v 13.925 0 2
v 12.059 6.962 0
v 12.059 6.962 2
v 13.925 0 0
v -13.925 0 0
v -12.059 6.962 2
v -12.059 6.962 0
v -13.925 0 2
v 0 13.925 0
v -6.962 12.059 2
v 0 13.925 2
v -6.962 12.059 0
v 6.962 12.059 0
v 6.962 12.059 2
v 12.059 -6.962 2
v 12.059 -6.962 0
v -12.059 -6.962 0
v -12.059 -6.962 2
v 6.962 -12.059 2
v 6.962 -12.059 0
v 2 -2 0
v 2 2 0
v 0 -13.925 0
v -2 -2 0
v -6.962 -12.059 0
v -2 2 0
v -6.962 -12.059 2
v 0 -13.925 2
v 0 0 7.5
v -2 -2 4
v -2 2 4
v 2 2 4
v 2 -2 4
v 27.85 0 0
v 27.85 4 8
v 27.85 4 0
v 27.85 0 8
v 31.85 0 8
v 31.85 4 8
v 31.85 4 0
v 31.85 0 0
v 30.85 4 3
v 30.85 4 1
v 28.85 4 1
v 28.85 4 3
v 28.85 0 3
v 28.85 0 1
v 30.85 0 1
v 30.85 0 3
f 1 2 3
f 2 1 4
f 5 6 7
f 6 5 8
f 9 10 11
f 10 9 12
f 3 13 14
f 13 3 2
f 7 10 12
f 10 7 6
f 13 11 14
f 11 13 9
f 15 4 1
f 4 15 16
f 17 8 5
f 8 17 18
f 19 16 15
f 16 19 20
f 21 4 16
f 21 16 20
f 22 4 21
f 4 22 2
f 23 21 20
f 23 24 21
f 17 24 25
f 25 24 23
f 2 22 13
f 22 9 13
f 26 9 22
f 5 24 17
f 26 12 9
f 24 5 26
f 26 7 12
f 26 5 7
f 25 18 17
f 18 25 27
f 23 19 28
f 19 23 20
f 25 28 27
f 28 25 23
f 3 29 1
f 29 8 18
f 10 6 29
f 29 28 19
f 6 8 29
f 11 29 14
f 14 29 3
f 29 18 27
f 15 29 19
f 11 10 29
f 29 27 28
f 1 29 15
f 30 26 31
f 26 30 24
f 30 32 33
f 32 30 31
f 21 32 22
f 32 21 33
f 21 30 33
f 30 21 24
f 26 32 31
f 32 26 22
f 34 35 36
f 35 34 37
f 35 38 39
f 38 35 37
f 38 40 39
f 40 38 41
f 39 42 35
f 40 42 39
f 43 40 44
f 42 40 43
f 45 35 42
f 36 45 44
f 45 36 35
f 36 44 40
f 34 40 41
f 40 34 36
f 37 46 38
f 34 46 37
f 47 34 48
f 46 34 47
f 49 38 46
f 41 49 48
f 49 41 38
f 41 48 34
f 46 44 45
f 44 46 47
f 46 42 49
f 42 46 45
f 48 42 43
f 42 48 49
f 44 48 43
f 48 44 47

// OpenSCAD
$fn=12;

button_size = 27.85;
button_base_height = 2;
button_height = 7.5 - button_base_height;

module button(size, bh = 2, h = 6)
{
    cylinder(h=bh, r1=size/2.0, r2=size/2.0, center=false);
    translate([0, 0, 2])
        cylinder(h, r1=size/2.0, r2=0, center=false);
}

module handle(size, center=true) {
    difference() {
        cube([4, 4, 8], center);
        translate([center ? 0 : 1, 0, center ? -2 : 1])
        cube([2, 4, 2], center);
    }
}

difference() {
    button(button_size, button_base_height, button_height);
    handle(button_size * 0.9, center=true);
}

translate([button_size, 0, 0])
handle(center=false);
